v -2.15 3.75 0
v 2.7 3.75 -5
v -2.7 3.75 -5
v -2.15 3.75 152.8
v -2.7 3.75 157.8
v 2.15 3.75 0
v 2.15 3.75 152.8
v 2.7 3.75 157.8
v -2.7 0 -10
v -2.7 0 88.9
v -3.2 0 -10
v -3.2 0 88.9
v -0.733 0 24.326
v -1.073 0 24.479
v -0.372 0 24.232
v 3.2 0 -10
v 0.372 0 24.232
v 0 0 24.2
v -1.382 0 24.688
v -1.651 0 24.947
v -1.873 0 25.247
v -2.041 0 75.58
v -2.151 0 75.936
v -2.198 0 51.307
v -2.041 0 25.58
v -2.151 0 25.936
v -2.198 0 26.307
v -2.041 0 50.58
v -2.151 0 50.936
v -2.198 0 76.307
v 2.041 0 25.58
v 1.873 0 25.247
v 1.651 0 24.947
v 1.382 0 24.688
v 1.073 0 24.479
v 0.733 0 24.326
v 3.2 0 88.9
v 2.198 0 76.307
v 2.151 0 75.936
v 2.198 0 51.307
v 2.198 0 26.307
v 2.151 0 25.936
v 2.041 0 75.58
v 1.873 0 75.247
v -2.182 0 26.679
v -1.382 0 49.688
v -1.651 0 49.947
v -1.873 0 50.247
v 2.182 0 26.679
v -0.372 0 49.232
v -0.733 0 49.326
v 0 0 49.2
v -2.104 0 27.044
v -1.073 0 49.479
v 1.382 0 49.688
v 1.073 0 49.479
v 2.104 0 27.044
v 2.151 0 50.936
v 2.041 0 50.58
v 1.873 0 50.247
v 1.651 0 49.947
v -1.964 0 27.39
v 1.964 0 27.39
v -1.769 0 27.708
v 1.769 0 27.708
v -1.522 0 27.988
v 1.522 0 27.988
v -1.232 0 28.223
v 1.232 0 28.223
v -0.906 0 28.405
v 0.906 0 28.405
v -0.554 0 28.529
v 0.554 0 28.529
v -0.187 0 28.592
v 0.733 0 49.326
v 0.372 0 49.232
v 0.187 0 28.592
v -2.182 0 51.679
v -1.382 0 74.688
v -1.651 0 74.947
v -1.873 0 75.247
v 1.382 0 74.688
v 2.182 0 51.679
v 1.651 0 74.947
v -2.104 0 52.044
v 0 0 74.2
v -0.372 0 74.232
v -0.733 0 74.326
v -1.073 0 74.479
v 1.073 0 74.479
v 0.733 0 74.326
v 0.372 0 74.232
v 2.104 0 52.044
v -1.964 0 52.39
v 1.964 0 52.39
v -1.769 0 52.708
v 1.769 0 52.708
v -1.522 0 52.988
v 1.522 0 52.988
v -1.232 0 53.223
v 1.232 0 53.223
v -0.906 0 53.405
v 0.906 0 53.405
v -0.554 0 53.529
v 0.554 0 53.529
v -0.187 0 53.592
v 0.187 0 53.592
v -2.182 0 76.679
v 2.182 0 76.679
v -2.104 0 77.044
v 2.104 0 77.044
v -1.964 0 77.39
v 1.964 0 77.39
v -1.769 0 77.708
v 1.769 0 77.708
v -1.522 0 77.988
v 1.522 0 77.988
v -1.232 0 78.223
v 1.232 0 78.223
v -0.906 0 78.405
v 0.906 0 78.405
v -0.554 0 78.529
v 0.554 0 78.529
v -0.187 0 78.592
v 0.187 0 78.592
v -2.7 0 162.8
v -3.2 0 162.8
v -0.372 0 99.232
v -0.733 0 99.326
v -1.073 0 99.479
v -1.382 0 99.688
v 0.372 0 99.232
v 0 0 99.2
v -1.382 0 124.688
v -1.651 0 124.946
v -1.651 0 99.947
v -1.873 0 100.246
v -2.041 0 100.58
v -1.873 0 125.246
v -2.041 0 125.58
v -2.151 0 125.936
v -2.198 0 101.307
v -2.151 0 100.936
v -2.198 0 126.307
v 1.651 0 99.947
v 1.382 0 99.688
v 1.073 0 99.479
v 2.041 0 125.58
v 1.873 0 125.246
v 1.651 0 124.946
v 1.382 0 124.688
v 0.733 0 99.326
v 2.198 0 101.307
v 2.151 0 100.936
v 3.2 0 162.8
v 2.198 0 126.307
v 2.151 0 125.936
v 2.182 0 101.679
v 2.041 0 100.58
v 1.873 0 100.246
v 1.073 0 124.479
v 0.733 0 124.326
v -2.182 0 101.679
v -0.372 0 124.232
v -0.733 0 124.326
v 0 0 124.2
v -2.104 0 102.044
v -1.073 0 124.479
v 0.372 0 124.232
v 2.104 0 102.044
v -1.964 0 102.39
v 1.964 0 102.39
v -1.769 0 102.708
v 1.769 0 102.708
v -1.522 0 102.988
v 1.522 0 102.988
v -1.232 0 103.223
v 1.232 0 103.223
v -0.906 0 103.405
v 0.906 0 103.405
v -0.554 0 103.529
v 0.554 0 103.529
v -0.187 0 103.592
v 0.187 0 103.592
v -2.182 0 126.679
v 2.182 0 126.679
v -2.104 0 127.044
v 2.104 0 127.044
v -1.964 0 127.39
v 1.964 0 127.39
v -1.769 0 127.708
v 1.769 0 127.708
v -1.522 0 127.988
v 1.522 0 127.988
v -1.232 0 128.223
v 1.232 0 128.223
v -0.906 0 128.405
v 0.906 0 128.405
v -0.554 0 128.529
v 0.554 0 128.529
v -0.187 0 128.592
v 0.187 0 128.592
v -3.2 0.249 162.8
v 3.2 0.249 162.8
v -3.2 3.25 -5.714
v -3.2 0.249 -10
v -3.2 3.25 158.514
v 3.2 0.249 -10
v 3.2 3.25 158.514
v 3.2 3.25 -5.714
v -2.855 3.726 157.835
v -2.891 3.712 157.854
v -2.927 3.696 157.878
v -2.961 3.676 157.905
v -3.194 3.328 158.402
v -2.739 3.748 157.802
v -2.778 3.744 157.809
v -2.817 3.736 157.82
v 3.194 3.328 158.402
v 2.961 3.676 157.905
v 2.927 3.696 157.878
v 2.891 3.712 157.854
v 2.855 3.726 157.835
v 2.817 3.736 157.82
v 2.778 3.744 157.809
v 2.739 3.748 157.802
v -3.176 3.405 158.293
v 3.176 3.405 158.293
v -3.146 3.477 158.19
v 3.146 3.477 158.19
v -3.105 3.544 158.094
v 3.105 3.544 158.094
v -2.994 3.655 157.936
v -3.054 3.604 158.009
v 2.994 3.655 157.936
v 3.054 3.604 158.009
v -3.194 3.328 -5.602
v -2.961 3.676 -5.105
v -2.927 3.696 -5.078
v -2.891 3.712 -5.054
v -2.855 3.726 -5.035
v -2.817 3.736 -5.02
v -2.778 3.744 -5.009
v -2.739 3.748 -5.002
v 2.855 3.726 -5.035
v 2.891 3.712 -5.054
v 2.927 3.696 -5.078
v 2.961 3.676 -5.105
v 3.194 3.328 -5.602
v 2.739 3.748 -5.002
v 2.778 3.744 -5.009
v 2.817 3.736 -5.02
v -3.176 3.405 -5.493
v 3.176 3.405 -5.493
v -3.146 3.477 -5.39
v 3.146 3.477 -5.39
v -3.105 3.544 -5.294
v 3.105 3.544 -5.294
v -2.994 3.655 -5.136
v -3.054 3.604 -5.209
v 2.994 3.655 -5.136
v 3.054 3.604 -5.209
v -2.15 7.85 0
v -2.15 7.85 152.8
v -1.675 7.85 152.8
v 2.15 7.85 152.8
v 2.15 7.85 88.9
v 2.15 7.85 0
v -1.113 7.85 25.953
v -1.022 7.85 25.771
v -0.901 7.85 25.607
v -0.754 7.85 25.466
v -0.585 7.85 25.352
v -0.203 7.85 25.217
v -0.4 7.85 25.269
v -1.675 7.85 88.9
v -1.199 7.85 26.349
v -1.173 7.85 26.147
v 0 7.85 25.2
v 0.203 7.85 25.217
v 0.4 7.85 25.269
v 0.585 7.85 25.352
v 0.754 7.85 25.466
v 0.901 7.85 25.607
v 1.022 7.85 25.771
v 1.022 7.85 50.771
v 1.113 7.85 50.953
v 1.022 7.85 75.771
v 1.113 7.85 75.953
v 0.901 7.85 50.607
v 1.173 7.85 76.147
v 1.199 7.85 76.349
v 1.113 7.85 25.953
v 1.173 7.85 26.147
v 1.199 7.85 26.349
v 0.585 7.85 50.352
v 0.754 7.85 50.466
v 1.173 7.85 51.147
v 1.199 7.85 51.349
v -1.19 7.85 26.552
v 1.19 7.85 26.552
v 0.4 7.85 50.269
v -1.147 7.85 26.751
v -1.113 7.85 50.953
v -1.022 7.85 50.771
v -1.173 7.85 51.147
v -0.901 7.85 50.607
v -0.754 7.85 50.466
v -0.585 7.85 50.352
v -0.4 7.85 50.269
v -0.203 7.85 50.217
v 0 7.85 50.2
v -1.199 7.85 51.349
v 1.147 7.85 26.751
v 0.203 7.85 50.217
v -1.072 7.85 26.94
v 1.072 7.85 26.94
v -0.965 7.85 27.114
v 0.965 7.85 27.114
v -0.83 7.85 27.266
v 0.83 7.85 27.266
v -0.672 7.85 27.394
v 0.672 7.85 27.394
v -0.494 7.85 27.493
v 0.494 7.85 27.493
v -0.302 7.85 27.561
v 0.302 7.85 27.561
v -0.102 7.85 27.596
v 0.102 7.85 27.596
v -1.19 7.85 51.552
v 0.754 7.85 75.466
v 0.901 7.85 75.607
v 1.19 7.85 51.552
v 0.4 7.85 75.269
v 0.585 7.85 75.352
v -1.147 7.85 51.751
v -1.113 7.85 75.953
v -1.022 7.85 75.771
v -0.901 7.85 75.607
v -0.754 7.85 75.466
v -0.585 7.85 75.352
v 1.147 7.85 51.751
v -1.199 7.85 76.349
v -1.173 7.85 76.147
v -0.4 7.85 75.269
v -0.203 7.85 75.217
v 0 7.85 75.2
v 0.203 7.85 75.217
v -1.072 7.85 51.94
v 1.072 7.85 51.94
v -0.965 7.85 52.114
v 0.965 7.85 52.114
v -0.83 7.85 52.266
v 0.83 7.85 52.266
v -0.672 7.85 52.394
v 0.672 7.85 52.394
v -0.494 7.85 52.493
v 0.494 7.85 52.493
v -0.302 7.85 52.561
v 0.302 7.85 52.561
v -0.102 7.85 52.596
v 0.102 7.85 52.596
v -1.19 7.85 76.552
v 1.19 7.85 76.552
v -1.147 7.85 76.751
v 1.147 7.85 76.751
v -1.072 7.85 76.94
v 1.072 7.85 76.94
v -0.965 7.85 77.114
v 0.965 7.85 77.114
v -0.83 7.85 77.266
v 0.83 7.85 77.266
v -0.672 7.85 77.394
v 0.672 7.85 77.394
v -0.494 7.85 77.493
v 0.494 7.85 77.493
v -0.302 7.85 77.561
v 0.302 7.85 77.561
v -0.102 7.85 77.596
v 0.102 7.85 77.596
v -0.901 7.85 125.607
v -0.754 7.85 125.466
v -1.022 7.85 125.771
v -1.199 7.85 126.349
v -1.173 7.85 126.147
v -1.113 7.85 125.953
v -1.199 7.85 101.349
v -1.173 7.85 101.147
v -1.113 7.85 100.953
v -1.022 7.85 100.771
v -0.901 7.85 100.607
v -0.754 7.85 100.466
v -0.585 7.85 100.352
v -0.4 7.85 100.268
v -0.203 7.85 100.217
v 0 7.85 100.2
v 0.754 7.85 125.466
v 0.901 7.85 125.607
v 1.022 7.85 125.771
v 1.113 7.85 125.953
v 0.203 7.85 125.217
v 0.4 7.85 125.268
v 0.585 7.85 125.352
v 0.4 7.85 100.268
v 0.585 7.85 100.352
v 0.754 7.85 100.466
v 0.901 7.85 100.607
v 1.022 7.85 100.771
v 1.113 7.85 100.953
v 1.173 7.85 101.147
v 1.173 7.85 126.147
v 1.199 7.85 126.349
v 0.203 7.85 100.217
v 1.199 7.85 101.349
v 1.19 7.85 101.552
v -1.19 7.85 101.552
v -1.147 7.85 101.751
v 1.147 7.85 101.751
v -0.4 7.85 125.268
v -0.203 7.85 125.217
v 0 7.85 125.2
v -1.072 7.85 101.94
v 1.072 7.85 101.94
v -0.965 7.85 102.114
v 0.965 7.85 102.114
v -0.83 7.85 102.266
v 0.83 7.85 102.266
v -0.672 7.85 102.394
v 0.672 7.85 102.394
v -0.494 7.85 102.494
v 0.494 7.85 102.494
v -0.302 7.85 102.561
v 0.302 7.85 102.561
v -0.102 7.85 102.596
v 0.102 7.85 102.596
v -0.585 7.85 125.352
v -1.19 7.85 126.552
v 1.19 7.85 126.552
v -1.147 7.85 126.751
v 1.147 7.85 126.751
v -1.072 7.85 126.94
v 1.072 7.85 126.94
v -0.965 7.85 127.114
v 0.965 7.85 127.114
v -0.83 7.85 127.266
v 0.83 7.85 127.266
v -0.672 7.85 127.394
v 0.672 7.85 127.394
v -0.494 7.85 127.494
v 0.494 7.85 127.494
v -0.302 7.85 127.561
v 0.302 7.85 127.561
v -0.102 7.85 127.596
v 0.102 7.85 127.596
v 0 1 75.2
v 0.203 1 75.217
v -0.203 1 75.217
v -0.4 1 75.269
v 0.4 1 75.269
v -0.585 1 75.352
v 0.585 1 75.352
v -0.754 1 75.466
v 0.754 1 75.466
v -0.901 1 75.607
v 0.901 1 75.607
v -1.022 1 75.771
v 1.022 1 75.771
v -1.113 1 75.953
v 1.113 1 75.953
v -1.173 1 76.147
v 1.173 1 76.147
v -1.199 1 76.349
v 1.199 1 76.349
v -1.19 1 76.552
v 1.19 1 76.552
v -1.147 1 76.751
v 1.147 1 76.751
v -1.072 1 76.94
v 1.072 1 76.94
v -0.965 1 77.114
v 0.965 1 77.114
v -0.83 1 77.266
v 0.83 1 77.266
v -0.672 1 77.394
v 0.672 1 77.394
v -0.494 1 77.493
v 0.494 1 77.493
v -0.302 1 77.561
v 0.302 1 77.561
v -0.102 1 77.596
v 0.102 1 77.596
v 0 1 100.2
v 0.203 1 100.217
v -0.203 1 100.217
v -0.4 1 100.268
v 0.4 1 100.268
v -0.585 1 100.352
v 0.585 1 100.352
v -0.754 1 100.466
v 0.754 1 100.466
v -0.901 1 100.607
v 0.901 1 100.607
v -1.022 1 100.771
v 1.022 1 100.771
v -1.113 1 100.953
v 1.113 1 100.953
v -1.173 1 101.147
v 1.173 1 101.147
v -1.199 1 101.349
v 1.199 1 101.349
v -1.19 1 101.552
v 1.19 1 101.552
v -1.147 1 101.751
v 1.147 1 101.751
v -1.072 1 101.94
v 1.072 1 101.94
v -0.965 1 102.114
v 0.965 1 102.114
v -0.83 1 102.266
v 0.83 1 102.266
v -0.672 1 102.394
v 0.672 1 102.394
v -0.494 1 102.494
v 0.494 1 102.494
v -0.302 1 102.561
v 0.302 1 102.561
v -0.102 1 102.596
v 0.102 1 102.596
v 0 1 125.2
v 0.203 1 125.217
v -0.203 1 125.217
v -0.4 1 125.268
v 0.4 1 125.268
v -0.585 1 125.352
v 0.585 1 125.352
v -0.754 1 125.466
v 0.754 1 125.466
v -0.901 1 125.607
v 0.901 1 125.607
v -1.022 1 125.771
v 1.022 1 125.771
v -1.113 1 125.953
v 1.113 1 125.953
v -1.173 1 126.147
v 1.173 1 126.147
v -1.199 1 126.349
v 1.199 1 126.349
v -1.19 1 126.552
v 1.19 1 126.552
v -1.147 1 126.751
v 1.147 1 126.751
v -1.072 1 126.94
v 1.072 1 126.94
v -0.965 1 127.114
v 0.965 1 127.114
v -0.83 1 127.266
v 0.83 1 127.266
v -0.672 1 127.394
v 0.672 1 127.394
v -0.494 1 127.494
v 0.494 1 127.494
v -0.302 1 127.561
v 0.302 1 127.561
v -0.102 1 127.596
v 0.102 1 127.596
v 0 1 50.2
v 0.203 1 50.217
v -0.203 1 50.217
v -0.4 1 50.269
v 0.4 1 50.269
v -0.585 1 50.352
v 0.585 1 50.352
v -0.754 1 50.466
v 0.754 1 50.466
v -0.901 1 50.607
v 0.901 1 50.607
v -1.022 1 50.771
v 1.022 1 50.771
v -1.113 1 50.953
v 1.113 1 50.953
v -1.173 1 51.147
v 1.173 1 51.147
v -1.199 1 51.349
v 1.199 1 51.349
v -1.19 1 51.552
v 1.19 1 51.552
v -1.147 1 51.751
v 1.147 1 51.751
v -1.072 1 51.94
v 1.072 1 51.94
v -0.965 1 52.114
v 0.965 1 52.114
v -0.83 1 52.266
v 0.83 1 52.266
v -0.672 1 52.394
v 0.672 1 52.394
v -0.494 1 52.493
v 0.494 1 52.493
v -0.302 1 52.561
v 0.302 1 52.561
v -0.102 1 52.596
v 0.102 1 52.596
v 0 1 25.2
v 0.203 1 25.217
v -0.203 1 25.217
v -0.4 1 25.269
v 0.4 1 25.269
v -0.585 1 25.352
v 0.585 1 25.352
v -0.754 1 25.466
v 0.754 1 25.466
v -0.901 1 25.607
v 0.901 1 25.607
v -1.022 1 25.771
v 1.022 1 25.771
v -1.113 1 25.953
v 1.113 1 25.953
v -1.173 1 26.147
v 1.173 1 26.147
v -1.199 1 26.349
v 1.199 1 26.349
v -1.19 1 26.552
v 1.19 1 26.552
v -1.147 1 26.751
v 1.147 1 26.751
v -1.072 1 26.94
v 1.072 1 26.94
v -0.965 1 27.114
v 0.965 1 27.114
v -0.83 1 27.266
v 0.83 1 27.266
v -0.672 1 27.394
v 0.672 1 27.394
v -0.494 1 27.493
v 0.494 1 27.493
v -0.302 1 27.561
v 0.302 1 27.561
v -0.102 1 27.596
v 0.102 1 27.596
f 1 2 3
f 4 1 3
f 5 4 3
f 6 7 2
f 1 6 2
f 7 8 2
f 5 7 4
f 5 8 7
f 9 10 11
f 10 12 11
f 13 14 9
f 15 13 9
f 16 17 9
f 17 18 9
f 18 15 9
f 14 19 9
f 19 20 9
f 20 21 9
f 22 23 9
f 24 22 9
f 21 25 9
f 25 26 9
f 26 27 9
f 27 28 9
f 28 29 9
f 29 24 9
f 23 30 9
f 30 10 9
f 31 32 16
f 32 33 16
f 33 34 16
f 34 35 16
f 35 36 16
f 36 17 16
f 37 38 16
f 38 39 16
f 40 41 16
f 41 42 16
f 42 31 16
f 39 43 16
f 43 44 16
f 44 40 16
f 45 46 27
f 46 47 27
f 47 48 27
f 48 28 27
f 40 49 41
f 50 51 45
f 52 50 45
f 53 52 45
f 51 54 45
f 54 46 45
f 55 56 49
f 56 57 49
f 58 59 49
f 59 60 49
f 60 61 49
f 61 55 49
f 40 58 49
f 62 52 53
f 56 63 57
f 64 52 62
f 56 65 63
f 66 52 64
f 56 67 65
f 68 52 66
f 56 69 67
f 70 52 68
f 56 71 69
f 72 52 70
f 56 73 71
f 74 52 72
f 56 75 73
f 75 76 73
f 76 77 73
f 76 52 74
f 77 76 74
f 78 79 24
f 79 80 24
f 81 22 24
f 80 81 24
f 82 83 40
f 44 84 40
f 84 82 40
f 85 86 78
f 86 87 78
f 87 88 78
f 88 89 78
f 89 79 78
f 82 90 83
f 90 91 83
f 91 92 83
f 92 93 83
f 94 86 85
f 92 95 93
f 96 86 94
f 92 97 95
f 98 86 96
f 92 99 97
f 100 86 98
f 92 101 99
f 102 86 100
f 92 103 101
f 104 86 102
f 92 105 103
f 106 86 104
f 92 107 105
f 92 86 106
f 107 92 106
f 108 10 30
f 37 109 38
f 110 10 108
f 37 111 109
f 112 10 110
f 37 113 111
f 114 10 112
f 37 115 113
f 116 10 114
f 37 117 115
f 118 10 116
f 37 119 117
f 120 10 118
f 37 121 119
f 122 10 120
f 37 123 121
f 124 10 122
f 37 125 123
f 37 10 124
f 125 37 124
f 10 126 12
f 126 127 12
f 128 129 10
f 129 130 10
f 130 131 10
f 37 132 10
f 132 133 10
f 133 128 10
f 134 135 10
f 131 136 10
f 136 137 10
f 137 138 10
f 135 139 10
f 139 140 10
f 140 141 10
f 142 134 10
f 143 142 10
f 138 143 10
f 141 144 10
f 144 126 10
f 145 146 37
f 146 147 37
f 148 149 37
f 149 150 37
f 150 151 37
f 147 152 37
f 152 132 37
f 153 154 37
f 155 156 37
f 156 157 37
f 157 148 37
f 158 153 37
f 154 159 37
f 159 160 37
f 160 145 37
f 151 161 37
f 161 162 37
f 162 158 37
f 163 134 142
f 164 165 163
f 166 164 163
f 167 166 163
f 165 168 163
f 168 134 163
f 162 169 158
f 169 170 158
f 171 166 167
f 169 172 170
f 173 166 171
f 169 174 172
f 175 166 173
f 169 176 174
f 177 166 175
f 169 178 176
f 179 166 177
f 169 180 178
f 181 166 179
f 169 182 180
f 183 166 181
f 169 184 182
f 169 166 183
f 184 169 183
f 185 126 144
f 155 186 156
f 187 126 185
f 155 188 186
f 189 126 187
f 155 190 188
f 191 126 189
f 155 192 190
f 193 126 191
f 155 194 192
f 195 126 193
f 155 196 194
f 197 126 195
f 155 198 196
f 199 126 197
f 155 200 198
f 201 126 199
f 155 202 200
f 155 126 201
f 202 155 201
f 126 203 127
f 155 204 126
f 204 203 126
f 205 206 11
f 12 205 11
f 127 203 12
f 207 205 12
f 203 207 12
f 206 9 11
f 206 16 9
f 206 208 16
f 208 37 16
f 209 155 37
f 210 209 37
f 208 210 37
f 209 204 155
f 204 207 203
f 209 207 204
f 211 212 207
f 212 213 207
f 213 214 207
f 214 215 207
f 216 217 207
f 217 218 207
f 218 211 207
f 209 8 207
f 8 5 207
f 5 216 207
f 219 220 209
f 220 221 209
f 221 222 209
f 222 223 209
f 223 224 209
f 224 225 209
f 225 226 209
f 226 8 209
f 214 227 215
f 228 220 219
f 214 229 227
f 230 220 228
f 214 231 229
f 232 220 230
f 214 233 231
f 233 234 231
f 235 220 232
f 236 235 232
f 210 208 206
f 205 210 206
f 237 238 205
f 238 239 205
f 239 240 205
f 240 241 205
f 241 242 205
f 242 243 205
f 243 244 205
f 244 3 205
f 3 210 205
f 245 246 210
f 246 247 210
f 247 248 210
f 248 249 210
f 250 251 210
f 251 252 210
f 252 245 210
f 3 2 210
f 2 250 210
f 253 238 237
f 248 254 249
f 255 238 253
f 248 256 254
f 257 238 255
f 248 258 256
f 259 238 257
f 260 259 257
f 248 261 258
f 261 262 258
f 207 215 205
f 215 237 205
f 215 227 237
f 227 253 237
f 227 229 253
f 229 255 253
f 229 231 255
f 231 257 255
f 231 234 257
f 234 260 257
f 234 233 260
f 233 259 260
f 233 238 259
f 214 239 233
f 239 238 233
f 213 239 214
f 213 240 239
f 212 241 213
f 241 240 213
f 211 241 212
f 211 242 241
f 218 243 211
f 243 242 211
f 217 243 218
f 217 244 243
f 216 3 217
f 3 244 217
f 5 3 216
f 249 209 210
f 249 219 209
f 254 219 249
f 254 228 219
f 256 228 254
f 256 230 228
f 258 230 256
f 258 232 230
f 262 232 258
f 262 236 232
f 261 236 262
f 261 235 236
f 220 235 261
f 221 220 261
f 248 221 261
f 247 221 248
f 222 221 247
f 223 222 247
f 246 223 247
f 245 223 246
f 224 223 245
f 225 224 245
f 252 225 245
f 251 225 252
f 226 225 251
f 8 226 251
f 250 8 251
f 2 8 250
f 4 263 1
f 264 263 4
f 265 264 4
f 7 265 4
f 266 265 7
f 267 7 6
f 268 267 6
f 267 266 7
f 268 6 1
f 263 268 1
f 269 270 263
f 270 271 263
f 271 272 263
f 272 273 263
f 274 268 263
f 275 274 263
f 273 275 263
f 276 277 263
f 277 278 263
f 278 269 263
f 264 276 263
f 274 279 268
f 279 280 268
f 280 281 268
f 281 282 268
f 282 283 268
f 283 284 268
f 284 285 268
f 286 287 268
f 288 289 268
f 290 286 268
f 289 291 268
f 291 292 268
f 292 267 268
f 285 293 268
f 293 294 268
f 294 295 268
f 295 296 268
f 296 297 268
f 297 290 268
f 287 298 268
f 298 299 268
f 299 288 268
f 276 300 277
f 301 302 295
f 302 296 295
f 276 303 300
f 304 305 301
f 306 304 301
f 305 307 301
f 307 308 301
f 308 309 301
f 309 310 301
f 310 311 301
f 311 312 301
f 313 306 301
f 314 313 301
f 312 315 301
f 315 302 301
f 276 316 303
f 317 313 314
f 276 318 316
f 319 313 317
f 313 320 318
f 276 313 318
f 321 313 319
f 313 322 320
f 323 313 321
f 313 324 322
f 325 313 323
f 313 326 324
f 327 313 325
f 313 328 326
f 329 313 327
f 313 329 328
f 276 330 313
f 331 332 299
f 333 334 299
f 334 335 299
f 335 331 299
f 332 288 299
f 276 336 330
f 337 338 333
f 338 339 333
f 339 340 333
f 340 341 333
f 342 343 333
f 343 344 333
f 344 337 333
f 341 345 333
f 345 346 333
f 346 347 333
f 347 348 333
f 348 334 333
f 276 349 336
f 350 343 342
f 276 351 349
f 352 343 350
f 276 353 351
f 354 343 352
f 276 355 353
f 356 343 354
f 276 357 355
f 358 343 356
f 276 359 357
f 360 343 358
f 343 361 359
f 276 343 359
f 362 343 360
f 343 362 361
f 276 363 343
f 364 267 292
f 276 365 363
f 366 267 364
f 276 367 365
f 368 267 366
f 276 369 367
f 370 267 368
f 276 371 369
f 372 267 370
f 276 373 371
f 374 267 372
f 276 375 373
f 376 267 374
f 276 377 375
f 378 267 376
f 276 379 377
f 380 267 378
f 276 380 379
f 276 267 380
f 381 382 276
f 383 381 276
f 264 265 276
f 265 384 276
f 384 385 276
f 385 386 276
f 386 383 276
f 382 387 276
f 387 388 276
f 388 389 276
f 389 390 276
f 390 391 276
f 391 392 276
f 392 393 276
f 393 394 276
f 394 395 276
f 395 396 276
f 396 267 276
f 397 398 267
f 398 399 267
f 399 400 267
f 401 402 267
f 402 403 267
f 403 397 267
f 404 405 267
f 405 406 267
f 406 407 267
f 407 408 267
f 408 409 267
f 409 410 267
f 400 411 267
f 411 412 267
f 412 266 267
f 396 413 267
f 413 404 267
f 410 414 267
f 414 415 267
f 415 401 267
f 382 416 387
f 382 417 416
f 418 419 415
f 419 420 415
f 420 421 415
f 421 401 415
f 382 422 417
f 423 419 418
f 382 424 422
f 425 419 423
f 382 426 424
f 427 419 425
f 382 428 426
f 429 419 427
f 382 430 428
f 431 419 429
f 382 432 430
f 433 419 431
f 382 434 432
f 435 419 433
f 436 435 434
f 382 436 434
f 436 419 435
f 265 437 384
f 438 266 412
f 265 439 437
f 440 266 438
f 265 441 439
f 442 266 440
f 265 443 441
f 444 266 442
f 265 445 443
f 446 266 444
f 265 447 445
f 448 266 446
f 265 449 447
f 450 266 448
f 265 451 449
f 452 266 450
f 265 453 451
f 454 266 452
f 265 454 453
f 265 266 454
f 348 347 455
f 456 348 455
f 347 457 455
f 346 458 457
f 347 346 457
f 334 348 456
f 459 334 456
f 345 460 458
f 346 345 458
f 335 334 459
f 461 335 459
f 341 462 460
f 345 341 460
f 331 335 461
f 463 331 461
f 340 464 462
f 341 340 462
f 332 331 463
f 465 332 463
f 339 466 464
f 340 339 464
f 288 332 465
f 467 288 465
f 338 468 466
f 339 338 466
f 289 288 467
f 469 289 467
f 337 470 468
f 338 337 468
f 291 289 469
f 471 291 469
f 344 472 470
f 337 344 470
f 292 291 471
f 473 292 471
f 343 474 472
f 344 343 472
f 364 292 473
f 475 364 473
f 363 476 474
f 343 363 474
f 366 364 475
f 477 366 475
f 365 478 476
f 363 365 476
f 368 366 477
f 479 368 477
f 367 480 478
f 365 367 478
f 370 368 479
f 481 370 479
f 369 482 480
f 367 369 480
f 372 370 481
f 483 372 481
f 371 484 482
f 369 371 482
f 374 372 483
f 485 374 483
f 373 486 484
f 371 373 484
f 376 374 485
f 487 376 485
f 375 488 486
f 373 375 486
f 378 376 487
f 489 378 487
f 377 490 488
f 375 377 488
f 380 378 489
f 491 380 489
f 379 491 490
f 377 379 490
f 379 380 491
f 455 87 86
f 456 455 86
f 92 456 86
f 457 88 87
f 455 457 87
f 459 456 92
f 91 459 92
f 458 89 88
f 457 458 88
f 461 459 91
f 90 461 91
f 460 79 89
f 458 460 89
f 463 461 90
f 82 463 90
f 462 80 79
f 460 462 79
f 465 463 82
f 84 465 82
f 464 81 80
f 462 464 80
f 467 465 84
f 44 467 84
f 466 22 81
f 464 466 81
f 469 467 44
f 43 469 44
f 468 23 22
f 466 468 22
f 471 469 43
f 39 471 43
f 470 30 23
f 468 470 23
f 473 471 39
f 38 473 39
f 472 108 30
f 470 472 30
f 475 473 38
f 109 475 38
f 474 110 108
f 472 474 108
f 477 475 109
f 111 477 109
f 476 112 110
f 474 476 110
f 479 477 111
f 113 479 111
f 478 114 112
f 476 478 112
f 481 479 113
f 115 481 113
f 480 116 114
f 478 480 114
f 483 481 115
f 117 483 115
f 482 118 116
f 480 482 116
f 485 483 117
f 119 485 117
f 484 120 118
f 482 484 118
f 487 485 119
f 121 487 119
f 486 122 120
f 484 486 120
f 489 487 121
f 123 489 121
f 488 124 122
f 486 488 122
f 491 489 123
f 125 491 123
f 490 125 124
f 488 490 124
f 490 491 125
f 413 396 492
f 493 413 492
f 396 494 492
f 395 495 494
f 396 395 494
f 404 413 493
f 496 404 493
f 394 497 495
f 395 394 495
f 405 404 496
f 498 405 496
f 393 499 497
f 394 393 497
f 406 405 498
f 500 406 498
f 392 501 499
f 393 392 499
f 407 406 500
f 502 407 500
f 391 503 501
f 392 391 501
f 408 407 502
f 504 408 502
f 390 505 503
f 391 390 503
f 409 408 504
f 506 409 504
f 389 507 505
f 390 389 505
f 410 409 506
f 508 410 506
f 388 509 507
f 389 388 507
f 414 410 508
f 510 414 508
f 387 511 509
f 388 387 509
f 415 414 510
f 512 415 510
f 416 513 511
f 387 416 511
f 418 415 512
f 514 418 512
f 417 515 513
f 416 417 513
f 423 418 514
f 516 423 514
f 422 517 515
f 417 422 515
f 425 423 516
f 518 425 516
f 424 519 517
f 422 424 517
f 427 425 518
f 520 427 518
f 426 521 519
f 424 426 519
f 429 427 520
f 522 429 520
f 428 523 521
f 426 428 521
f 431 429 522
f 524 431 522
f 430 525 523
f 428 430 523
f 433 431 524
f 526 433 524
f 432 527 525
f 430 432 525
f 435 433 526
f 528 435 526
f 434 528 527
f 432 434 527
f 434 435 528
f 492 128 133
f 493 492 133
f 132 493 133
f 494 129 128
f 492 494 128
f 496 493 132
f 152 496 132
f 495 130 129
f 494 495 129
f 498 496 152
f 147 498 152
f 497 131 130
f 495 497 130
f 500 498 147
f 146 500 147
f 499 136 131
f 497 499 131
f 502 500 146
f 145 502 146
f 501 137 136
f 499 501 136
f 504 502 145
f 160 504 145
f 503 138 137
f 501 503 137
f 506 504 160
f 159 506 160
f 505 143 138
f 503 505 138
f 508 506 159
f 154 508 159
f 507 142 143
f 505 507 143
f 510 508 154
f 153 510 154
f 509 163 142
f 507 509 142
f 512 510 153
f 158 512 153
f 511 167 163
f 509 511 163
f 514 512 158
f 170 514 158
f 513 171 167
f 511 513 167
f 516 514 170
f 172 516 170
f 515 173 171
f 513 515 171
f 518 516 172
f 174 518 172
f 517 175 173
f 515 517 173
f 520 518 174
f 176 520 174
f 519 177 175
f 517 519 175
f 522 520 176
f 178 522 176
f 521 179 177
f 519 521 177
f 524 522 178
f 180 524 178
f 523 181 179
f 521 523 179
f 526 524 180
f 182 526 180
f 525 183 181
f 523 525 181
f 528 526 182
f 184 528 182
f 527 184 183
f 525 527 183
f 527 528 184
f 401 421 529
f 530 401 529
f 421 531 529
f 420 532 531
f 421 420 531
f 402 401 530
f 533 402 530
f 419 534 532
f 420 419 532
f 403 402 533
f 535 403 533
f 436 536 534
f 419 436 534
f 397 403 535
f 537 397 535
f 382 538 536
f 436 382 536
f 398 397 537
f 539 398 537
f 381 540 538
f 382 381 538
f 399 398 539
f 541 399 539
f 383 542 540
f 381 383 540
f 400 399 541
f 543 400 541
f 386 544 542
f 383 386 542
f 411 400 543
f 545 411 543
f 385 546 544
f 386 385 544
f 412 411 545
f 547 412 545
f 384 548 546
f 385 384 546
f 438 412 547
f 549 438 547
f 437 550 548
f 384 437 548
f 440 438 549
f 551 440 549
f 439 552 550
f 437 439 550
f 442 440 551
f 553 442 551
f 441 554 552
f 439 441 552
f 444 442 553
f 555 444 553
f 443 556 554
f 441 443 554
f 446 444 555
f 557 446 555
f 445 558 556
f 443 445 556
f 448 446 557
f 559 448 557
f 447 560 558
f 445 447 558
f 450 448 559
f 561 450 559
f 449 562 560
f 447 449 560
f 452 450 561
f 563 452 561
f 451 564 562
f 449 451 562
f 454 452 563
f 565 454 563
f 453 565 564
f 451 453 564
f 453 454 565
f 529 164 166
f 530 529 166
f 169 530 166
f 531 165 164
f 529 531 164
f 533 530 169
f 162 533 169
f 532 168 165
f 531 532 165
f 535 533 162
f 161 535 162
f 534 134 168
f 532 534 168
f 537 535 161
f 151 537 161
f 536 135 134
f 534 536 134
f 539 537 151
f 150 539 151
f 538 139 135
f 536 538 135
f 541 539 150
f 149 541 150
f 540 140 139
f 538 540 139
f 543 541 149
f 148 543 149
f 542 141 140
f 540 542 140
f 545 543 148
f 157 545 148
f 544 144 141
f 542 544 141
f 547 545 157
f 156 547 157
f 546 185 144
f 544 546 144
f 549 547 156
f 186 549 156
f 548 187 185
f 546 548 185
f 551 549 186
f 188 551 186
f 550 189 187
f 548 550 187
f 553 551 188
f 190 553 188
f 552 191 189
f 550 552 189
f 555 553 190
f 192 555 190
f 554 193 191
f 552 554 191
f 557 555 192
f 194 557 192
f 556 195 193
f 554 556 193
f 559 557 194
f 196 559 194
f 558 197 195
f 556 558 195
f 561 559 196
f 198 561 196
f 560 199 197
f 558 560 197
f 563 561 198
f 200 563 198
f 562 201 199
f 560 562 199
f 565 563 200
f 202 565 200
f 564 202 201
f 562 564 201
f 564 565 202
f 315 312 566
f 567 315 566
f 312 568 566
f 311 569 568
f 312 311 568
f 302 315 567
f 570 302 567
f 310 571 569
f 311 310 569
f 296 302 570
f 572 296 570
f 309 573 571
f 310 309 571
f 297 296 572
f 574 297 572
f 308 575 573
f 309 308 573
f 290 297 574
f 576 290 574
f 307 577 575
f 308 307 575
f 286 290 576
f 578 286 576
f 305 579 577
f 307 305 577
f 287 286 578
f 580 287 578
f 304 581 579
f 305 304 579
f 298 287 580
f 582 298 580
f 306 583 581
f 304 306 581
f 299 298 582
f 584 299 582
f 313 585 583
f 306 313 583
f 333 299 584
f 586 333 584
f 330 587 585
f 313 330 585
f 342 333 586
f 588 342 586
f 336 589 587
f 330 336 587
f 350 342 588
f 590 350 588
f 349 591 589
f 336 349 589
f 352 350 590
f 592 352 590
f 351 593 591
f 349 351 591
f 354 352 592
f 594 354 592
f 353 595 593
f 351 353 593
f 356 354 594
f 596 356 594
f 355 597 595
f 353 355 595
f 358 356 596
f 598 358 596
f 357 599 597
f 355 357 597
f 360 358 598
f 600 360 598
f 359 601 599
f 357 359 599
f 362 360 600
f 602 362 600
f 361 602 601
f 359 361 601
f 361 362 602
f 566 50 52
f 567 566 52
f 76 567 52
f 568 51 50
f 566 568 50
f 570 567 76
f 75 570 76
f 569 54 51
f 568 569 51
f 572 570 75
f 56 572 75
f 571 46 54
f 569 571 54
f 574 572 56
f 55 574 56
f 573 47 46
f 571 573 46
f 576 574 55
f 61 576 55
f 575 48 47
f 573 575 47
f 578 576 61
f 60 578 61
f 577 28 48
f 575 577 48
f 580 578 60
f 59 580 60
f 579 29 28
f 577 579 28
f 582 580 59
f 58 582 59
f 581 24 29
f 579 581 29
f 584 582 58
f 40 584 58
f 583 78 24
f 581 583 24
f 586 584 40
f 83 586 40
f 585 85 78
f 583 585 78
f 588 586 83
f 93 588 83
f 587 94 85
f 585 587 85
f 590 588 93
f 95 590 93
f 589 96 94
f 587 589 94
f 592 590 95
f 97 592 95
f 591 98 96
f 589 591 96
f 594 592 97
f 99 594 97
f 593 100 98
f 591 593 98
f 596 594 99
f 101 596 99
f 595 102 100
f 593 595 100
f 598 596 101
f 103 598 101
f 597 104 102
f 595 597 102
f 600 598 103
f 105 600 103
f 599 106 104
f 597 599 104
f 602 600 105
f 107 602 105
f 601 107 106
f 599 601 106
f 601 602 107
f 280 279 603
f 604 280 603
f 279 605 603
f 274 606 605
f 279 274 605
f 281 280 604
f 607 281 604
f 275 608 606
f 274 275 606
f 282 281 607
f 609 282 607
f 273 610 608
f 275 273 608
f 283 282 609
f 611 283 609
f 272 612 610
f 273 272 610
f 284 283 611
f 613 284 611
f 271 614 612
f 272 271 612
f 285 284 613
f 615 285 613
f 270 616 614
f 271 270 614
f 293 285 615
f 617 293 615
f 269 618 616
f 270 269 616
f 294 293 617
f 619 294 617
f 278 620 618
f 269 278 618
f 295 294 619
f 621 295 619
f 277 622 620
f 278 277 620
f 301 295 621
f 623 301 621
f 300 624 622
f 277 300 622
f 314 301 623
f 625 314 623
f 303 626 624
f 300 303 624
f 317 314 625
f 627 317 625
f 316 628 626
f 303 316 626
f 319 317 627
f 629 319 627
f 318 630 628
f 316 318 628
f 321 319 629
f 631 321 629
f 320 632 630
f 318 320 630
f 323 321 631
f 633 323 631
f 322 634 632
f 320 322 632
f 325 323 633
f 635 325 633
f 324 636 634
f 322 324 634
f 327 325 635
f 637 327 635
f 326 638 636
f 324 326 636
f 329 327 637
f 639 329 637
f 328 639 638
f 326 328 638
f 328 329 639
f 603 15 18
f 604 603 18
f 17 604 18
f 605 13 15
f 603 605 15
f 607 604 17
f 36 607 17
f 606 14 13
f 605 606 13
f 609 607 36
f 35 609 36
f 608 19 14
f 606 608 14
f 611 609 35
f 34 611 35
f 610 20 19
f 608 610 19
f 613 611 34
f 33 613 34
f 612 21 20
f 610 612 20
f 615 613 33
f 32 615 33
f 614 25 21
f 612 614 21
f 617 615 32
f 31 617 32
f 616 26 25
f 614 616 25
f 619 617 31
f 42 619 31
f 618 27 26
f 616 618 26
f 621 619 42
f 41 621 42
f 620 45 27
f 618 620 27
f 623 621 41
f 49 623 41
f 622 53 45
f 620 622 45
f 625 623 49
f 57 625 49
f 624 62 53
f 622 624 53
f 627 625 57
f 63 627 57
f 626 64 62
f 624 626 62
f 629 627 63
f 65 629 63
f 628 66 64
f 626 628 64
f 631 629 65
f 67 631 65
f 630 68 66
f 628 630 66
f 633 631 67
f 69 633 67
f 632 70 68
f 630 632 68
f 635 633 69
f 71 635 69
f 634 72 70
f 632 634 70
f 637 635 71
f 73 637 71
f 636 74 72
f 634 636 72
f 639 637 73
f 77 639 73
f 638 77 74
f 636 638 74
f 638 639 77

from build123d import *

# Parameters (mm, degrees)
SKETCH1_W                                       = 6.4
SKETCH1_H                                       = 172.8
BOSS_EXTRUDE1_DEPTH                             = 3.75
CHAMFER4_SIZE                                   = 5
CHAMFER4_SIZE2                                  = 3.501037691
FILLET1_R                                       = 0.5
SKETCH2_W                                       = 4.3
SKETCH2_H                                       = 152.8
BOSS_EXTRUDE2_DEPTH                             = 4.1
CSK_FOR_M2_FLAT_HEAD_MACHINE_SCREW1_D           = 2.4
CSK_FOR_M2_FLAT_HEAD_MACHINE_SCREW1_CSINK_D     = 4.4
CSK_FOR_M2_FLAT_HEAD_MACHINE_SCREW1_CSINK_ANGLE = 90
LPATTERN1_COUNT                                 = 3
LPATTERN1_PITCH                                 = 25
LPATTERN1_COL_COUNT                             = 3
LPATTERN1_COL_PITCH                             = 25


with BuildPart() as part:
    # Sketch1 → Boss-Extrude1 (new body)
    with BuildSketch(Plane(origin=(0, 0, 0), x_dir=(1, 0, 0), z_dir=(0, 1, 0))):
        with Locations((0, -76.4)):
            Rectangle(SKETCH1_W, SKETCH1_H)
    extrude(amount=BOSS_EXTRUDE1_DEPTH)

    # Chamfer4
    chamfer4_edges = [part.edges().sort_by_distance(p)[0] for p in [
        (0, 3.75, 162.8),
        (0, 3.75, -10),
    ]]
    chamfer4_side = [part.faces().sort_by_distance(p)[0] for p in [
        (0, 3.75, 76.4),
    ]]
    chamfer(chamfer4_edges, length=CHAMFER4_SIZE, length2=CHAMFER4_SIZE2, reference=chamfer4_side[0])

    # Fillet1
    fillet1_edges = [part.edges().sort_by_distance(p)[0] for p in [
        (-3.2, 3.75, 76.4),
        (3.2, 3.75, 76.4),
    ]]
    fillet(fillet1_edges, radius=FILLET1_R)

    # Sketch2 → Boss-Extrude2 (add)
    with BuildSketch(Plane(origin=(0, 3.75, 0), x_dir=(1, 0, 0), z_dir=(0, 1, 0))):
        with Locations((0, -76.4)):
            Rectangle(SKETCH2_W, SKETCH2_H)
    extrude(amount=BOSS_EXTRUDE2_DEPTH)

    # CSK for M2 Flat Head Machine Screw1 (through all)
    with Locations(Plane.XZ):
        with Locations((0, 76.4)):
            csk_for_m2_flat_head_machine_screw1 = CounterSinkHole(CSK_FOR_M2_FLAT_HEAD_MACHINE_SCREW1_D / 2, CSK_FOR_M2_FLAT_HEAD_MACHINE_SCREW1_CSINK_D / 2, counter_sink_angle=CSK_FOR_M2_FLAT_HEAD_MACHINE_SCREW1_CSINK_ANGLE)

    # LPattern1: CSK for M2 Flat Head Machine Screw1 ×3
    with Locations(*[(0, 0, -i * LPATTERN1_PITCH) for i in range(1, LPATTERN1_COUNT)]):
        add(csk_for_m2_flat_head_machine_screw1, mode=Mode.SUBTRACT)

    # LPattern1 col: CSK for M2 Flat Head Machine Screw1 ×3
    with Locations(*[(0, 0, i * LPATTERN1_COL_PITCH) for i in range(1, LPATTERN1_COL_COUNT)]):
        add(csk_for_m2_flat_head_machine_screw1, mode=Mode.SUBTRACT)


solid = part.part
